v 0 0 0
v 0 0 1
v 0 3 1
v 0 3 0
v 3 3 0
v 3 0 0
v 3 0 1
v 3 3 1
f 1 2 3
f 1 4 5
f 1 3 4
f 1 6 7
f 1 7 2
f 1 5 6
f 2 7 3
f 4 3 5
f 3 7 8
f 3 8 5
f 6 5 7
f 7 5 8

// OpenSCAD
/* Warning, this is a very basic generator with a lot of approximation 
input data : [VQFN, U2B, 3x3x1.0mm, 20, , C, C04-00476C]
generated by com.zoubworld.electronics.cad.model3d.Basic
Date : Sun Feb 15 10:50:48 CET 2026
*/

//body
color("black")
translate([0,0,0])
cube([3.0,3.0,1.0], center=false);
